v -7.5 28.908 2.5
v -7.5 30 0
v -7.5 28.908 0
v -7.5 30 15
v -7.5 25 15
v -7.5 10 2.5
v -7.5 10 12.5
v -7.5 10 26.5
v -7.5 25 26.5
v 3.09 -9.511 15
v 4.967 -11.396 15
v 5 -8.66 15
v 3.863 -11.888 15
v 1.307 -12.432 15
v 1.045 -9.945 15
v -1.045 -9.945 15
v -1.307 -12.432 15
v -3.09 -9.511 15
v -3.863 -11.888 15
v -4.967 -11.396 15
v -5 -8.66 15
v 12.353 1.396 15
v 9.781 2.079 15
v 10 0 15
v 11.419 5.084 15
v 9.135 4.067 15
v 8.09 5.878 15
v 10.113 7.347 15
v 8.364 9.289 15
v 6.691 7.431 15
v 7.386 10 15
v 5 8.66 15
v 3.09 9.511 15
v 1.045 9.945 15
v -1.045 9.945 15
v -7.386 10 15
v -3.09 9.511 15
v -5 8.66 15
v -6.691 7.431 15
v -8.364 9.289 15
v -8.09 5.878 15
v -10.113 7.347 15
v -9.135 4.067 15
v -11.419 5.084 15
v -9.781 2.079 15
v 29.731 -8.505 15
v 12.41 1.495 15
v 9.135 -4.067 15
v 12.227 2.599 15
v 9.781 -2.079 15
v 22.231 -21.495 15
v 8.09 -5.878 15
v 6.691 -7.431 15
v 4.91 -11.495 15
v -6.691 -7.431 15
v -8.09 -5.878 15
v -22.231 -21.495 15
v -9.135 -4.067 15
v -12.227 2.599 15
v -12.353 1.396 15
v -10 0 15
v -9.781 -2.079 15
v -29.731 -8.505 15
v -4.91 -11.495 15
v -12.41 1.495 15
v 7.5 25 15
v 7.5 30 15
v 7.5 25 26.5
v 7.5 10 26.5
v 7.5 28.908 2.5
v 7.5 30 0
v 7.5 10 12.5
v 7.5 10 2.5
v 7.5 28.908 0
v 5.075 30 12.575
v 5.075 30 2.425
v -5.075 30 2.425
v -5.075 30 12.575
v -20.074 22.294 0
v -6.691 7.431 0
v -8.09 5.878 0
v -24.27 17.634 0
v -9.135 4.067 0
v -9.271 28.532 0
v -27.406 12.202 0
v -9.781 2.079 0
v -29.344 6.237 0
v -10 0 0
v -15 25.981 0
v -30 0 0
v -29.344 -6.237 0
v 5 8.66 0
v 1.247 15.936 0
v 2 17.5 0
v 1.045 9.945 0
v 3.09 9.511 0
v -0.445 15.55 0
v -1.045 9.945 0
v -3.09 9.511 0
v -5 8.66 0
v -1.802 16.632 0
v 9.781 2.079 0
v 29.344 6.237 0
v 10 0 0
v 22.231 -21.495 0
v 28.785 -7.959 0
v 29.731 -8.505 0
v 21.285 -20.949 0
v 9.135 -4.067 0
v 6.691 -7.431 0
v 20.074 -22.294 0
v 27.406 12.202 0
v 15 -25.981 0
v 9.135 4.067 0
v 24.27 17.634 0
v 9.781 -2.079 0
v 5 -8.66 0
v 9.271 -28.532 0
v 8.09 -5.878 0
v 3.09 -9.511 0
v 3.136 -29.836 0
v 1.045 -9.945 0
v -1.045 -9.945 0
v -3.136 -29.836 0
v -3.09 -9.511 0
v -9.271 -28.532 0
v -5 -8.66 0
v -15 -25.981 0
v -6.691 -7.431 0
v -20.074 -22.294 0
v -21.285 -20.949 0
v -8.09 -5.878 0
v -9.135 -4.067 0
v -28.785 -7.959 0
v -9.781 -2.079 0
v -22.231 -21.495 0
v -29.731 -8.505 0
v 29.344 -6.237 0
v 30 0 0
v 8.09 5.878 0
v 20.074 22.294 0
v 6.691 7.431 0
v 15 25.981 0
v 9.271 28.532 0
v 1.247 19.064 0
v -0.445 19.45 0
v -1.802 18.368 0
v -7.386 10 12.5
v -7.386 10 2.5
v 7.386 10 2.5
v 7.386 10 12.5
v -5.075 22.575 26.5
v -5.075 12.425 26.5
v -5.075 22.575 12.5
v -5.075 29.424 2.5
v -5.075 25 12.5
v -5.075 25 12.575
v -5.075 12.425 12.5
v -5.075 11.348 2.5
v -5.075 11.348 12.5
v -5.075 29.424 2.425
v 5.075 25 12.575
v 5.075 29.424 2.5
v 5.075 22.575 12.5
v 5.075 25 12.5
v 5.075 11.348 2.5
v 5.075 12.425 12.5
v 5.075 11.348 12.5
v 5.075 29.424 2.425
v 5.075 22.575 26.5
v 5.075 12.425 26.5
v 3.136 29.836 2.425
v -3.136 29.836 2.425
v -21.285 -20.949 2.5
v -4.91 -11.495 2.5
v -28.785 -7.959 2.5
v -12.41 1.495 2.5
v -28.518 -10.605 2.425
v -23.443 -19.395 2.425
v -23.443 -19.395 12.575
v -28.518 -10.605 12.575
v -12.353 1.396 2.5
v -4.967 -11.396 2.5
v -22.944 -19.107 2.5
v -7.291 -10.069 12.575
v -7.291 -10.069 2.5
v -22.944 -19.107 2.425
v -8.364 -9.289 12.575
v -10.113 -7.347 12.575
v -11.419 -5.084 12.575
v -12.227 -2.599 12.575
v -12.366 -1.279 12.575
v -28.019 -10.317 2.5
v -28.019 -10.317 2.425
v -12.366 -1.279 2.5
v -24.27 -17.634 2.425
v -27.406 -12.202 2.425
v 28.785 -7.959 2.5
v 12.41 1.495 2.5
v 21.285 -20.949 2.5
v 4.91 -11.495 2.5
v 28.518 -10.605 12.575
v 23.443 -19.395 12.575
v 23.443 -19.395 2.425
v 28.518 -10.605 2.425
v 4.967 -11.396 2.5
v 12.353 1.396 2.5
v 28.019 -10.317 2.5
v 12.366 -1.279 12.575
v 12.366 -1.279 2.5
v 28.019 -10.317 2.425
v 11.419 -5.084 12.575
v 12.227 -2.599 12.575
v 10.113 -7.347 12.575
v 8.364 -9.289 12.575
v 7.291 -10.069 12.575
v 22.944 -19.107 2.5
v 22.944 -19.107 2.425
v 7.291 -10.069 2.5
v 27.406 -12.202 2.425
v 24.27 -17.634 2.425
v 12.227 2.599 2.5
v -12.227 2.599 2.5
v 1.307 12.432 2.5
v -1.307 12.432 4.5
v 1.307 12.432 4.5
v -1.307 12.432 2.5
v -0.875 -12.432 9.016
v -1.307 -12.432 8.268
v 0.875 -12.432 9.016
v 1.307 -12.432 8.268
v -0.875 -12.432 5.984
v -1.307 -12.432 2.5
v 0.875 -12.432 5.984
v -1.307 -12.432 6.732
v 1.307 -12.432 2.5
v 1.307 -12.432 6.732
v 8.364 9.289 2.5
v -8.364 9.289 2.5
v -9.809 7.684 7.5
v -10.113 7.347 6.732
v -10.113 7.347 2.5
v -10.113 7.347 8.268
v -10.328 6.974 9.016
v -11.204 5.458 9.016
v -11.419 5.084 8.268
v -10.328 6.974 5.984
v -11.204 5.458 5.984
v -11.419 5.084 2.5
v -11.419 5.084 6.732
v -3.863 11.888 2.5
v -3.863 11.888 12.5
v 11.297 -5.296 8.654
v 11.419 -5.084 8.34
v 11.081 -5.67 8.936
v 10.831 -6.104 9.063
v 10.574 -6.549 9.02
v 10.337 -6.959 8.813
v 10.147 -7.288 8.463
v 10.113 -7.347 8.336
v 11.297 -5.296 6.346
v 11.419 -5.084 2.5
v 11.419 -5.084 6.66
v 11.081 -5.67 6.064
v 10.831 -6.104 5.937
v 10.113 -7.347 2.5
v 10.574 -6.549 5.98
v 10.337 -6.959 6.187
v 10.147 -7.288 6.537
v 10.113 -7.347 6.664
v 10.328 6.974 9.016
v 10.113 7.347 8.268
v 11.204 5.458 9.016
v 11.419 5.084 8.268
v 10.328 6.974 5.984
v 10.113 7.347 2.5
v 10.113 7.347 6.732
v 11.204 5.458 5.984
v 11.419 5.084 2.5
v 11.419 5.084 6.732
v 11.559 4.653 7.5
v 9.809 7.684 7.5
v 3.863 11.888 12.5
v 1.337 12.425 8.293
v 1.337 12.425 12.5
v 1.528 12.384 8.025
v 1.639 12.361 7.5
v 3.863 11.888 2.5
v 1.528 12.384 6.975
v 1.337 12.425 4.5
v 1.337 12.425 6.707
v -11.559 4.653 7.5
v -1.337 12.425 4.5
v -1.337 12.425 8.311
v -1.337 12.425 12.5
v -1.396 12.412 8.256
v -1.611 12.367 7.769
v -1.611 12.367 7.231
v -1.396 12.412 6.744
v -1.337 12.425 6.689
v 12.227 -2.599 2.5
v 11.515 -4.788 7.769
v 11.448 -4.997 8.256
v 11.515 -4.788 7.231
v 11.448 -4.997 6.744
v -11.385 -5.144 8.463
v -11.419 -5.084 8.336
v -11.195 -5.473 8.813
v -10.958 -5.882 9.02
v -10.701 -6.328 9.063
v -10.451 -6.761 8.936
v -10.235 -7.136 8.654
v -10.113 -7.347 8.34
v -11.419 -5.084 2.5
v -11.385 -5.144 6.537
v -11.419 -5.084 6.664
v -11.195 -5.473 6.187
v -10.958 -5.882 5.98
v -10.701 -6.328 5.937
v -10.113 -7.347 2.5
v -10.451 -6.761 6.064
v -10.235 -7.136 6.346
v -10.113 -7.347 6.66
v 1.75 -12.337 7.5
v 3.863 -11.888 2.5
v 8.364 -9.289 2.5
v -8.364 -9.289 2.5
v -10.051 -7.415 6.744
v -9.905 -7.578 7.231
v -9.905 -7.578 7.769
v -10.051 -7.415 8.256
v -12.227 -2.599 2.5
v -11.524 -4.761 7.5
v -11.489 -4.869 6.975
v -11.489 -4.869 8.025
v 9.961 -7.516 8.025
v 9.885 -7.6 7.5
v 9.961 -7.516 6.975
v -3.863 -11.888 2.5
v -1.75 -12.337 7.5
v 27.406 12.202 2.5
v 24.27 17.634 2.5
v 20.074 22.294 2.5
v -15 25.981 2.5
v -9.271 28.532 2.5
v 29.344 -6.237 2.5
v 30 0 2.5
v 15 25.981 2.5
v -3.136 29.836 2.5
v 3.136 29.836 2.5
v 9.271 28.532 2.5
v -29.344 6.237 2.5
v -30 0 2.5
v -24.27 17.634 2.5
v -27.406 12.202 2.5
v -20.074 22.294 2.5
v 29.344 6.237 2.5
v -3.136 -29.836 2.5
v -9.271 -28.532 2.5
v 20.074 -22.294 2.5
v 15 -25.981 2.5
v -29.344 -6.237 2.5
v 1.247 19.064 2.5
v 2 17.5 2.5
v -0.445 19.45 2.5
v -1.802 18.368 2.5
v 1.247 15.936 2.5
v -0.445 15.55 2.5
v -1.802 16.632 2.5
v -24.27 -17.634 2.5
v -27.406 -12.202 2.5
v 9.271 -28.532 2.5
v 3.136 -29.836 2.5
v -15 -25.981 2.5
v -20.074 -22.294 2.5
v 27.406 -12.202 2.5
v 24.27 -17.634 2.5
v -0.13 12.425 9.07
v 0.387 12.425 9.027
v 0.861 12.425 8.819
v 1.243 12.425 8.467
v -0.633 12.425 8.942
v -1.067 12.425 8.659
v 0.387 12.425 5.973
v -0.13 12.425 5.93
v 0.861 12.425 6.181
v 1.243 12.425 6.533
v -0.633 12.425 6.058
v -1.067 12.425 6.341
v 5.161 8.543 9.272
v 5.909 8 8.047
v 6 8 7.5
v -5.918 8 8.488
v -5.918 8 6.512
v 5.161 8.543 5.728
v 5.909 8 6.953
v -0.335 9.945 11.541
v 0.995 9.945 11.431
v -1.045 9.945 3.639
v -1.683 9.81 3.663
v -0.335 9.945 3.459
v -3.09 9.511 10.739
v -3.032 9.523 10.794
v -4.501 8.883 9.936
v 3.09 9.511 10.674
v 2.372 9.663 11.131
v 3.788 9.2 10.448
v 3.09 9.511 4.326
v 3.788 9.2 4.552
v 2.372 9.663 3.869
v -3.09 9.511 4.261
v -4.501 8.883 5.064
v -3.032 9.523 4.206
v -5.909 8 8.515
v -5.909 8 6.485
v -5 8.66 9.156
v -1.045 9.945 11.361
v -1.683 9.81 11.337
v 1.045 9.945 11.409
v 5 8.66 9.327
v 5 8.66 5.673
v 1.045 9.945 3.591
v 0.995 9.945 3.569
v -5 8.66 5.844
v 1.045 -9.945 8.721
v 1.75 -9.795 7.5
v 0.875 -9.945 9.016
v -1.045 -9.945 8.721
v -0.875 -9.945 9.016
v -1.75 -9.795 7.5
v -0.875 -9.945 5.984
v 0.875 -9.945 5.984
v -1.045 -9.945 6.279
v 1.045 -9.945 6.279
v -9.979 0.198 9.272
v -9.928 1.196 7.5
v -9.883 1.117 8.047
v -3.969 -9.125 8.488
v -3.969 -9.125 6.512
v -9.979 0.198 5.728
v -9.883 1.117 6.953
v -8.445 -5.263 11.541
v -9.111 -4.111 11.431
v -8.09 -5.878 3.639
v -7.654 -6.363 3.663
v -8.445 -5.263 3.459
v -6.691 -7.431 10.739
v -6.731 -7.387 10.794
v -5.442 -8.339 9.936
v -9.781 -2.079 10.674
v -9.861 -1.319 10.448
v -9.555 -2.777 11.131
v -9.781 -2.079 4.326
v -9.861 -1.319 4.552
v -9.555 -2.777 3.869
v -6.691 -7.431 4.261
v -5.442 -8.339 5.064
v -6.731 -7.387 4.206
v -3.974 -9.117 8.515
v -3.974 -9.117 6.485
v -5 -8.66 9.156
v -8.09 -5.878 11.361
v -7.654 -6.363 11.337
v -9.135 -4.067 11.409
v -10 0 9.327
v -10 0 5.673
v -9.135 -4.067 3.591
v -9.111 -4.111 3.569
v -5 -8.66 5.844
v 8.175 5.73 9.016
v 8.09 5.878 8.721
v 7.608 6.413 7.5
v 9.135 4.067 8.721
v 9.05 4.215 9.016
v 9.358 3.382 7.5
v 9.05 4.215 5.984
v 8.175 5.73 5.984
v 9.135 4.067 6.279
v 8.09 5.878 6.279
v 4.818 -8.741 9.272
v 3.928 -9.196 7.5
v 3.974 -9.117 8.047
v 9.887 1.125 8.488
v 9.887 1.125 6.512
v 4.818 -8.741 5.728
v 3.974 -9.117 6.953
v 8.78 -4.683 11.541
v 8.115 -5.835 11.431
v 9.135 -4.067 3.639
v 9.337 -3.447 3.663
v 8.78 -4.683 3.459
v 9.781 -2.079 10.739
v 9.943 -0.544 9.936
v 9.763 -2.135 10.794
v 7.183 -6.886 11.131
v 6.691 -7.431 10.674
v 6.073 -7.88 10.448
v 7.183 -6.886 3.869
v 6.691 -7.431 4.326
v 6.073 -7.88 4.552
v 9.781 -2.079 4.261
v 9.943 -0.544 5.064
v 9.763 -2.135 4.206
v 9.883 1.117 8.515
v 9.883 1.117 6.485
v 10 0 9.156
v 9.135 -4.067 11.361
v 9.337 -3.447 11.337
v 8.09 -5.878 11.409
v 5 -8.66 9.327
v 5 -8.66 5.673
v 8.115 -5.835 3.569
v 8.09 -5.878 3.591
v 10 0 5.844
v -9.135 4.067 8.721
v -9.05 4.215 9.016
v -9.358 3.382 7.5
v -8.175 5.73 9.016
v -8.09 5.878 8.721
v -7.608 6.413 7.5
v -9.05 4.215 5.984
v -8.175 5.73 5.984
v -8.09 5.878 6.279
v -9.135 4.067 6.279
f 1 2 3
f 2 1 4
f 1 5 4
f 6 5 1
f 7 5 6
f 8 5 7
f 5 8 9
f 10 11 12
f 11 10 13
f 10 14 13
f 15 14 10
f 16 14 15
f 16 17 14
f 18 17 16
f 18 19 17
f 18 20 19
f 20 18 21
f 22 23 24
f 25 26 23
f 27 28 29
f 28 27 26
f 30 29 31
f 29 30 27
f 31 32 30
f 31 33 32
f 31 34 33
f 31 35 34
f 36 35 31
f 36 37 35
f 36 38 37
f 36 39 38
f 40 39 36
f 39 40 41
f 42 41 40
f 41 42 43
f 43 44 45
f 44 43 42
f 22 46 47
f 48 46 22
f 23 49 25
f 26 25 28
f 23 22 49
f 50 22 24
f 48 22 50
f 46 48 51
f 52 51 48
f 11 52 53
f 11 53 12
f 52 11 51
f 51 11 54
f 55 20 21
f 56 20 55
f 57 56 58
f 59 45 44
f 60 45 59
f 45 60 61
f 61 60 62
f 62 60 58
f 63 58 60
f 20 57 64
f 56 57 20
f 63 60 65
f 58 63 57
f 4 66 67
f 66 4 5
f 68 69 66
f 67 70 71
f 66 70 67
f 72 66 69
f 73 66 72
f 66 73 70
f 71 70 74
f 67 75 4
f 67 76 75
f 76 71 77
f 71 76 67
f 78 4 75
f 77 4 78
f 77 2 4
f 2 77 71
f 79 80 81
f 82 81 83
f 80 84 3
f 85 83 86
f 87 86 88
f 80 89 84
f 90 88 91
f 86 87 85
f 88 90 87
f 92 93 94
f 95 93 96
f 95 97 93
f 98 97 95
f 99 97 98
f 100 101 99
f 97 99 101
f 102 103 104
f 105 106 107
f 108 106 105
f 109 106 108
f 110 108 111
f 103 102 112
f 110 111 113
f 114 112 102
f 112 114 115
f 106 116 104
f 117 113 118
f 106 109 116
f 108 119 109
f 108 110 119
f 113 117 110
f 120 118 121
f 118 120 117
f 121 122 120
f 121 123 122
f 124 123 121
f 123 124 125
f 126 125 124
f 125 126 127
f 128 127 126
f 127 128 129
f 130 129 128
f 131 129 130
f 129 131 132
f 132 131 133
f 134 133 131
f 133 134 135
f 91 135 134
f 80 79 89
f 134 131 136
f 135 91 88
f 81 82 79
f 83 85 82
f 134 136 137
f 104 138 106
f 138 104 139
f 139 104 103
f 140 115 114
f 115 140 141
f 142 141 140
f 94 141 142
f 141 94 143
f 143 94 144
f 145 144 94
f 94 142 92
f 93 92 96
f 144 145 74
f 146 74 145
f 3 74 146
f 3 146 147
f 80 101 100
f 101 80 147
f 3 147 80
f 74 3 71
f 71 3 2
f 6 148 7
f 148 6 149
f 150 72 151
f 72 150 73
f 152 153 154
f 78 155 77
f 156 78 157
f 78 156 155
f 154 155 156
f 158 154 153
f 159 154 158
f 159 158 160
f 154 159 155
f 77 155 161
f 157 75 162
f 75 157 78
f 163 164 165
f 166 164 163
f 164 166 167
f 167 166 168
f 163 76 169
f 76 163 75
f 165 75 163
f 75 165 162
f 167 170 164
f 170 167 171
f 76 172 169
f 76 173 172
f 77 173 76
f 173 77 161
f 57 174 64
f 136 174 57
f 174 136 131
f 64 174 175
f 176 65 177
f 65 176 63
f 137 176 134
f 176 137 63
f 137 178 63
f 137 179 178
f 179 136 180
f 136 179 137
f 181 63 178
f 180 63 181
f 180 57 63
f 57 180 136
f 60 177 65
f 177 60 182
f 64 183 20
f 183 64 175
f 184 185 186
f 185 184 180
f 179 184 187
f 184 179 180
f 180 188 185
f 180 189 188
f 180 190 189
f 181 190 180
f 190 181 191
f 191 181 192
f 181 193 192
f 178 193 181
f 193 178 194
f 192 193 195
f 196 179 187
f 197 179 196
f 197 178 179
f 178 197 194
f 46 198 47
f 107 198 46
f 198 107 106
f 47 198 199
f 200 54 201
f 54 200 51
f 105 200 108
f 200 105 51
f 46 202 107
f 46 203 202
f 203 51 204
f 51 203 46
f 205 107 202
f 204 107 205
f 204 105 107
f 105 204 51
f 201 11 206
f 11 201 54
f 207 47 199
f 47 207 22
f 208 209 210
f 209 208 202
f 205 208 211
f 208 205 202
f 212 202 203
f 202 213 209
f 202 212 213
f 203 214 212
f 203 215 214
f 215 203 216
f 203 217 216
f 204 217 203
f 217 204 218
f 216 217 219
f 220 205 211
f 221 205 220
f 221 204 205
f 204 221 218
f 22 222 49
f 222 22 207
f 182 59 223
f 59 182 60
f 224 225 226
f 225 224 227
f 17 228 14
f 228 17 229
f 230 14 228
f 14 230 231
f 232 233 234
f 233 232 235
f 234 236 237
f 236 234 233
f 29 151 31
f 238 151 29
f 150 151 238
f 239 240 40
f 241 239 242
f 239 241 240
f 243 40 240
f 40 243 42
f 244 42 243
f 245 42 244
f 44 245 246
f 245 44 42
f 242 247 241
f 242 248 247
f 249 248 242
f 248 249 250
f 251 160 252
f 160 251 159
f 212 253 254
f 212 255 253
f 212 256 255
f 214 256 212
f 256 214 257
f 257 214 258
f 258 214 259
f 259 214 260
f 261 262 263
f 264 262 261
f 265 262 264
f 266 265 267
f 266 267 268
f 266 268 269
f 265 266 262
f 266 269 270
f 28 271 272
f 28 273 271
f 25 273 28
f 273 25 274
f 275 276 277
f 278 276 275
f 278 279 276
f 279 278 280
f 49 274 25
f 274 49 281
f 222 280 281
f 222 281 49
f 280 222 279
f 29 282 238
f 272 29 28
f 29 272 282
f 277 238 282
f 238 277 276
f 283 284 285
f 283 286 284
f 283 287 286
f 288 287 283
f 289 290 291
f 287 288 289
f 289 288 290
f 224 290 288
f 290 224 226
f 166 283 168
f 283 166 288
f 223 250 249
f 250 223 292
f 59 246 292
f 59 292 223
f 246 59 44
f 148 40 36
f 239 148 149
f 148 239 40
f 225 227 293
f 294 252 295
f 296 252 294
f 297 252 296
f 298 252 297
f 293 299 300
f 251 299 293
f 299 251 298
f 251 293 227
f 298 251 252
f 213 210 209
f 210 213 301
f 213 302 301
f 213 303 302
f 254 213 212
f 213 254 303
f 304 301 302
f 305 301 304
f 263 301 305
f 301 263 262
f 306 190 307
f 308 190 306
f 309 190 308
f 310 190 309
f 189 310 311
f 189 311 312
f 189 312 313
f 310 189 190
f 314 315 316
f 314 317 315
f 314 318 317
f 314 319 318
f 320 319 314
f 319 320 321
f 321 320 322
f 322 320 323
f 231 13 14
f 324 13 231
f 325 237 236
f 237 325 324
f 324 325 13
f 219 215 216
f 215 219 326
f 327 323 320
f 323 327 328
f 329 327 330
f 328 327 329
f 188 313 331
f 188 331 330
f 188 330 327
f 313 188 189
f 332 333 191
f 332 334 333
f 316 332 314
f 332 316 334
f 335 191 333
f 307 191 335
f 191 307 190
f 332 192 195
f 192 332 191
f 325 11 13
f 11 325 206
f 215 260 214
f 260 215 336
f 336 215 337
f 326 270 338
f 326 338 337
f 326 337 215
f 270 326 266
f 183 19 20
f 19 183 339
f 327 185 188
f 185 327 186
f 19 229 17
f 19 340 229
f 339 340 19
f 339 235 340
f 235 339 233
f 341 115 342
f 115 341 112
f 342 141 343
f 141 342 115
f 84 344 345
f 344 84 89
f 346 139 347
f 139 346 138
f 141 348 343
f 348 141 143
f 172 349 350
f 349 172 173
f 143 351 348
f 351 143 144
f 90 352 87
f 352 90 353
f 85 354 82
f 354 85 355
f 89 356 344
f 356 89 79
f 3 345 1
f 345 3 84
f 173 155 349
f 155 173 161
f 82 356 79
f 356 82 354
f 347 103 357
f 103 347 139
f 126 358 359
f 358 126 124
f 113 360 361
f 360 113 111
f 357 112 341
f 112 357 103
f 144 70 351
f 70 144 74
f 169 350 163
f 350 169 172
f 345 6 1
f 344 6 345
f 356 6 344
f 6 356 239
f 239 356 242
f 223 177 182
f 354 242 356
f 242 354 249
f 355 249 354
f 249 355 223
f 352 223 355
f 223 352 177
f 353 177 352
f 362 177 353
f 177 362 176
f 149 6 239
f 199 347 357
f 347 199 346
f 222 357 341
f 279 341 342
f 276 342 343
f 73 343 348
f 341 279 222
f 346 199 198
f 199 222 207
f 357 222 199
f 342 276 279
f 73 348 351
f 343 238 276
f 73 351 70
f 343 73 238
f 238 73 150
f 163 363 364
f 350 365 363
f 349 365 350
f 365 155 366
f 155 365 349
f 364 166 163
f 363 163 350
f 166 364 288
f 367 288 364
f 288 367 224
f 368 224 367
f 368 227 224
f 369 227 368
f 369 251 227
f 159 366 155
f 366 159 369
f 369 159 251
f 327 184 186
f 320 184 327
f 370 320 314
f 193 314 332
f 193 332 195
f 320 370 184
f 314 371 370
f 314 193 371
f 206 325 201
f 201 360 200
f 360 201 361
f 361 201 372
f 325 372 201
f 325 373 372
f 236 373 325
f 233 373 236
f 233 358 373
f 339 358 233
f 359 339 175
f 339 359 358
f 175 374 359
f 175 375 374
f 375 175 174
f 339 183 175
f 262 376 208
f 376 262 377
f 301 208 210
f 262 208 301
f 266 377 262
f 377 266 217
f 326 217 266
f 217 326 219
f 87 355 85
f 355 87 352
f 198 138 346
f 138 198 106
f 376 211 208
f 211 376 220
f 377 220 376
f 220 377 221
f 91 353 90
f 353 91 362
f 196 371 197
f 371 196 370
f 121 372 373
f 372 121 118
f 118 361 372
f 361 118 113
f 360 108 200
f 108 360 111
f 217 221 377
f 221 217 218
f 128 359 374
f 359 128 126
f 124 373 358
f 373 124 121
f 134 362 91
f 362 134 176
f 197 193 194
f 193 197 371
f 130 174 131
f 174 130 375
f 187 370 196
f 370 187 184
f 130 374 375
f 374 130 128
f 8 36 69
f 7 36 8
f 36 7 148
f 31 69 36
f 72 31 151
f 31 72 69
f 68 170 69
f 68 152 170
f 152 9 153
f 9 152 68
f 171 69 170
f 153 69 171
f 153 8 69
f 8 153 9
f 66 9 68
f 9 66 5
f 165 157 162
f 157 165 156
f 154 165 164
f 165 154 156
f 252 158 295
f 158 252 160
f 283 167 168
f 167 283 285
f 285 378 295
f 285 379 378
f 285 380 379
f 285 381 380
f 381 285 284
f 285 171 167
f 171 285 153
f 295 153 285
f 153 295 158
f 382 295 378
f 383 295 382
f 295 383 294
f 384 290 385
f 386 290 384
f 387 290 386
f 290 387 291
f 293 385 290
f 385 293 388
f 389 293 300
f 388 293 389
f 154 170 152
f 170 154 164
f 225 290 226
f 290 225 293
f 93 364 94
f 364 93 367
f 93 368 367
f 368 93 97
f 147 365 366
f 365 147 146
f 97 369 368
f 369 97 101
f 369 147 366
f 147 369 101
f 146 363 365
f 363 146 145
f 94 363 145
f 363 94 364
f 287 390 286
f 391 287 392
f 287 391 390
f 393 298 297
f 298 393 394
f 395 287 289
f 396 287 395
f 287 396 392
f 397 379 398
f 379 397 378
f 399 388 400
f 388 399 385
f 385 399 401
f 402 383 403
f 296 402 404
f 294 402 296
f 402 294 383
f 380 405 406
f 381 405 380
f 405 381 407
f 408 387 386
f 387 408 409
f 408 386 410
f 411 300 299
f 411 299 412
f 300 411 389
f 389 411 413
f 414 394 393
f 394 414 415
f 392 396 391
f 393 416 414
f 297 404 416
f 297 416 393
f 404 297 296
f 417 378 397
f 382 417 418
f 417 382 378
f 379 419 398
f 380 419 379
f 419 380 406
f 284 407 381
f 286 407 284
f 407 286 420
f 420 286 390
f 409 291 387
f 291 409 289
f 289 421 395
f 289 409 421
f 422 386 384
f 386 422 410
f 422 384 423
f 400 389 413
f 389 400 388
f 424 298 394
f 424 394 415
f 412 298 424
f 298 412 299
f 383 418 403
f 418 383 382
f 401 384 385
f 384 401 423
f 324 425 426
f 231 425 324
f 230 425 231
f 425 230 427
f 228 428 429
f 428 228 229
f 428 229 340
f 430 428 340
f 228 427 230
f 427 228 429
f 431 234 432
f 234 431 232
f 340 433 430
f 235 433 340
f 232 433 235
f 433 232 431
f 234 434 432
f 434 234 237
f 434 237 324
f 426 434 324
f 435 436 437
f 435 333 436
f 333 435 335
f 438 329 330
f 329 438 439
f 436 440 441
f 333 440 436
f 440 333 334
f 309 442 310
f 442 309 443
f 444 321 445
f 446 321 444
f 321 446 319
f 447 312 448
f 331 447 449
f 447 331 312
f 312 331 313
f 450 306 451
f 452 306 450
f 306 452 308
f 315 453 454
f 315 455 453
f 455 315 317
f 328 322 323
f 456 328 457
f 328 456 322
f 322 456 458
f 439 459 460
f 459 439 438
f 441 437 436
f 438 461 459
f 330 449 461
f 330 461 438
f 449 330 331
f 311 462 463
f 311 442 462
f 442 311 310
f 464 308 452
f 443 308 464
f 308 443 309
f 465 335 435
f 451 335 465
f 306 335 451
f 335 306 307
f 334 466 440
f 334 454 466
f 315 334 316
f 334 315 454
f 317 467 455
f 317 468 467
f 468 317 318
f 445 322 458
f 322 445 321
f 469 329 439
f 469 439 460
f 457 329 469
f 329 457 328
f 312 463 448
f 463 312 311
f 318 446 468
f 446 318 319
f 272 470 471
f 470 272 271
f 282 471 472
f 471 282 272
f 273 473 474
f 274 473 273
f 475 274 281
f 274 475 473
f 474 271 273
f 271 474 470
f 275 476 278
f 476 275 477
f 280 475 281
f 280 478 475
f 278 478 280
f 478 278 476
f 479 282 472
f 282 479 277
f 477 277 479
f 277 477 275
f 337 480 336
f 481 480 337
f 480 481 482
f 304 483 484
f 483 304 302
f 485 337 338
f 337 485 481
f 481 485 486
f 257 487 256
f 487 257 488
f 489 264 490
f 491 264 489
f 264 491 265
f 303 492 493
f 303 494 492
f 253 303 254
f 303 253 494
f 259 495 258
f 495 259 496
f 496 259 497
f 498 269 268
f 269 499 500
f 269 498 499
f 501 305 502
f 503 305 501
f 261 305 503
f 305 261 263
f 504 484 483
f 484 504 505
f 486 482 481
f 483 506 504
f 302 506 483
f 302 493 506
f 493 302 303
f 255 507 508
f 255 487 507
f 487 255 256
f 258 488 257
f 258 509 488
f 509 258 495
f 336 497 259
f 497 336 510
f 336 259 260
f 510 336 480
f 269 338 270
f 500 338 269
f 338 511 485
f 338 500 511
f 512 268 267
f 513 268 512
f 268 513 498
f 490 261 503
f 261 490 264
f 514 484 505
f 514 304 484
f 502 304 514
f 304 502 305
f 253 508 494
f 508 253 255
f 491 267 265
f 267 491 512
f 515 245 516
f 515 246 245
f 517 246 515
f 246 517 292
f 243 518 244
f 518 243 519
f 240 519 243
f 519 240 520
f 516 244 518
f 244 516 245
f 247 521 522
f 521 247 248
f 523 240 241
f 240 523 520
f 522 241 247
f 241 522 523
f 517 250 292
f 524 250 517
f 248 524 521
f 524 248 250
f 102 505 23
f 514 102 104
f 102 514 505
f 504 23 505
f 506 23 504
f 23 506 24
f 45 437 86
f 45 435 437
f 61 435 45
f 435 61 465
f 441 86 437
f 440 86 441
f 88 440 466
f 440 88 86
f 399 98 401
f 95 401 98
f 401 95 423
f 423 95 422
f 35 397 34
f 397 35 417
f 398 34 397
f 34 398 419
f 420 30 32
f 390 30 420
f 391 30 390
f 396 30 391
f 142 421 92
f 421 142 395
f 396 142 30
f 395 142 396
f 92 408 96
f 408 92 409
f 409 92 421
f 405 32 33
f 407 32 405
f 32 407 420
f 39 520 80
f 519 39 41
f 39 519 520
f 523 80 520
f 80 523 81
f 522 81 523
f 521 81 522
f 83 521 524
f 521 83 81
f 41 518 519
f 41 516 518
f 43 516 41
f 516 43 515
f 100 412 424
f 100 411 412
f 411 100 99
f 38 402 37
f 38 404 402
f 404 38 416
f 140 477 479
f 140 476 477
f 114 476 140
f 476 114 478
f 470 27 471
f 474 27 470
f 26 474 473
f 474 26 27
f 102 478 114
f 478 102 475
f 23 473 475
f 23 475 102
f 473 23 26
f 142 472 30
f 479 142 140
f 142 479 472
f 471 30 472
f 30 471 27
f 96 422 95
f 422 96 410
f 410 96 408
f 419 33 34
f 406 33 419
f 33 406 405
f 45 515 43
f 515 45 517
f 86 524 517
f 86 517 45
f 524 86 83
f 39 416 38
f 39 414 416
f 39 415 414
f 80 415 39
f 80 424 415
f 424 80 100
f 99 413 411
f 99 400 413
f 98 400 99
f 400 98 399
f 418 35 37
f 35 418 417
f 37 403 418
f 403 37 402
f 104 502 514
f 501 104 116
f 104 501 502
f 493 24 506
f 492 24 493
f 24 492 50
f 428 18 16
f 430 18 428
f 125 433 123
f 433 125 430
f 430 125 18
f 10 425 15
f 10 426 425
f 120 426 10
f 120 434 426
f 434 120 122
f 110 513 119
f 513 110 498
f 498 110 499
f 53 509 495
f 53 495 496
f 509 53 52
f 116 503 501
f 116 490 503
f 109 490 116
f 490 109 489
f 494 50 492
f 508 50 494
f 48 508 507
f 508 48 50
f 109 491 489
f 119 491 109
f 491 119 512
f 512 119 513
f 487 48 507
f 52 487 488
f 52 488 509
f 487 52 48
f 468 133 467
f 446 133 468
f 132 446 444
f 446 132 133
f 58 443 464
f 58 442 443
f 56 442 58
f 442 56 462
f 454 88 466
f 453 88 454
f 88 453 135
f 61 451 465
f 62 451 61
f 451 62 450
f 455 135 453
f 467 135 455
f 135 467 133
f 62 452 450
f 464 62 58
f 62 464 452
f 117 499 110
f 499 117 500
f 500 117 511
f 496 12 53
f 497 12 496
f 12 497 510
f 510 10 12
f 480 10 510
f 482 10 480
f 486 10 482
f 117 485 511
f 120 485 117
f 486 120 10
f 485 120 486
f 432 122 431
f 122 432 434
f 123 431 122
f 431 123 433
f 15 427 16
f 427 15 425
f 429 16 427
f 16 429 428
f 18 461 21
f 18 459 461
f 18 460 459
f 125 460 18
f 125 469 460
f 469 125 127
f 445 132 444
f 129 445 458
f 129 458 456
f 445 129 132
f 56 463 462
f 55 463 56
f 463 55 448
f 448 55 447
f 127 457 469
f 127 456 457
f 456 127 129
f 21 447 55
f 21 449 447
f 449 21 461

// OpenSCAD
mm=1;
in=25.4*mm;
slop = 0.15*mm;
eps=0.01*mm;


module beam(){
    cube([10*mm + slop, 100*mm, 10*mm+slop], center=true);
}


holder_len=20*mm;
module beam_holder() {
    difference(){
        cube([10*mm+2*wall, holder_len,10*mm+2*wall], center=true); 
        beam();
    }
}

center_rad = 10*mm;
wall=2.5*mm;


cyl_height = 10*mm+2*wall;
top_holder_len=14*mm;
union(){

    
    difference(){   
        union(){
            for(rot=[0,120,240])
            rotate([0,0,rot])
            translate([0,center_rad+holder_len/2,(10*mm+2*wall)/2])
            beam_holder();
    
            
            translate([0,0,cyl_height/2])
            cylinder(r=center_rad+wall, h=cyl_height,center=true);
            color("green")
            cylinder(r=holder_len+center_rad,h=wall);
            translate([0,center_rad+wall+5*mm,top_holder_len/2 + wall + 10*mm])
            rotate([90,0,0])
            union(){
                cube([10*mm+2*wall, top_holder_len*mm,10*mm+2*wall], center=true);
             }
 
                               
        }
        union(){
            translate([0,0,cyl_height/2])
            cylinder(r=center_rad,h=cyl_height+eps, center=true);
            
            translate([0,center_rad+wall+5*mm,top_holder_len/2 + wall + 10*mm])
            rotate([90,0,0])
            color("red") 
            union(){
                translate([0,35*mm,0*mm])
                beam();
                rotate([90,0,0])
                cylinder(r=2*mm,h=2*in,center=true);
            } 
                
                
            for(rot=[0,120,240]) {
            rotate([0,0,rot])
        
            translate([0,center_rad+wall+1.5*mm,wall+5*mm])
            color("blue")
                rotate([90,0,0])
            union(){
                cylinder(r1=0, r2=6*mm,h=6*mm);
                translate([0,0,2*mm])
                cylinder(r=1.75*mm,h=40*mm);
            }
        }
        }
    }
}
